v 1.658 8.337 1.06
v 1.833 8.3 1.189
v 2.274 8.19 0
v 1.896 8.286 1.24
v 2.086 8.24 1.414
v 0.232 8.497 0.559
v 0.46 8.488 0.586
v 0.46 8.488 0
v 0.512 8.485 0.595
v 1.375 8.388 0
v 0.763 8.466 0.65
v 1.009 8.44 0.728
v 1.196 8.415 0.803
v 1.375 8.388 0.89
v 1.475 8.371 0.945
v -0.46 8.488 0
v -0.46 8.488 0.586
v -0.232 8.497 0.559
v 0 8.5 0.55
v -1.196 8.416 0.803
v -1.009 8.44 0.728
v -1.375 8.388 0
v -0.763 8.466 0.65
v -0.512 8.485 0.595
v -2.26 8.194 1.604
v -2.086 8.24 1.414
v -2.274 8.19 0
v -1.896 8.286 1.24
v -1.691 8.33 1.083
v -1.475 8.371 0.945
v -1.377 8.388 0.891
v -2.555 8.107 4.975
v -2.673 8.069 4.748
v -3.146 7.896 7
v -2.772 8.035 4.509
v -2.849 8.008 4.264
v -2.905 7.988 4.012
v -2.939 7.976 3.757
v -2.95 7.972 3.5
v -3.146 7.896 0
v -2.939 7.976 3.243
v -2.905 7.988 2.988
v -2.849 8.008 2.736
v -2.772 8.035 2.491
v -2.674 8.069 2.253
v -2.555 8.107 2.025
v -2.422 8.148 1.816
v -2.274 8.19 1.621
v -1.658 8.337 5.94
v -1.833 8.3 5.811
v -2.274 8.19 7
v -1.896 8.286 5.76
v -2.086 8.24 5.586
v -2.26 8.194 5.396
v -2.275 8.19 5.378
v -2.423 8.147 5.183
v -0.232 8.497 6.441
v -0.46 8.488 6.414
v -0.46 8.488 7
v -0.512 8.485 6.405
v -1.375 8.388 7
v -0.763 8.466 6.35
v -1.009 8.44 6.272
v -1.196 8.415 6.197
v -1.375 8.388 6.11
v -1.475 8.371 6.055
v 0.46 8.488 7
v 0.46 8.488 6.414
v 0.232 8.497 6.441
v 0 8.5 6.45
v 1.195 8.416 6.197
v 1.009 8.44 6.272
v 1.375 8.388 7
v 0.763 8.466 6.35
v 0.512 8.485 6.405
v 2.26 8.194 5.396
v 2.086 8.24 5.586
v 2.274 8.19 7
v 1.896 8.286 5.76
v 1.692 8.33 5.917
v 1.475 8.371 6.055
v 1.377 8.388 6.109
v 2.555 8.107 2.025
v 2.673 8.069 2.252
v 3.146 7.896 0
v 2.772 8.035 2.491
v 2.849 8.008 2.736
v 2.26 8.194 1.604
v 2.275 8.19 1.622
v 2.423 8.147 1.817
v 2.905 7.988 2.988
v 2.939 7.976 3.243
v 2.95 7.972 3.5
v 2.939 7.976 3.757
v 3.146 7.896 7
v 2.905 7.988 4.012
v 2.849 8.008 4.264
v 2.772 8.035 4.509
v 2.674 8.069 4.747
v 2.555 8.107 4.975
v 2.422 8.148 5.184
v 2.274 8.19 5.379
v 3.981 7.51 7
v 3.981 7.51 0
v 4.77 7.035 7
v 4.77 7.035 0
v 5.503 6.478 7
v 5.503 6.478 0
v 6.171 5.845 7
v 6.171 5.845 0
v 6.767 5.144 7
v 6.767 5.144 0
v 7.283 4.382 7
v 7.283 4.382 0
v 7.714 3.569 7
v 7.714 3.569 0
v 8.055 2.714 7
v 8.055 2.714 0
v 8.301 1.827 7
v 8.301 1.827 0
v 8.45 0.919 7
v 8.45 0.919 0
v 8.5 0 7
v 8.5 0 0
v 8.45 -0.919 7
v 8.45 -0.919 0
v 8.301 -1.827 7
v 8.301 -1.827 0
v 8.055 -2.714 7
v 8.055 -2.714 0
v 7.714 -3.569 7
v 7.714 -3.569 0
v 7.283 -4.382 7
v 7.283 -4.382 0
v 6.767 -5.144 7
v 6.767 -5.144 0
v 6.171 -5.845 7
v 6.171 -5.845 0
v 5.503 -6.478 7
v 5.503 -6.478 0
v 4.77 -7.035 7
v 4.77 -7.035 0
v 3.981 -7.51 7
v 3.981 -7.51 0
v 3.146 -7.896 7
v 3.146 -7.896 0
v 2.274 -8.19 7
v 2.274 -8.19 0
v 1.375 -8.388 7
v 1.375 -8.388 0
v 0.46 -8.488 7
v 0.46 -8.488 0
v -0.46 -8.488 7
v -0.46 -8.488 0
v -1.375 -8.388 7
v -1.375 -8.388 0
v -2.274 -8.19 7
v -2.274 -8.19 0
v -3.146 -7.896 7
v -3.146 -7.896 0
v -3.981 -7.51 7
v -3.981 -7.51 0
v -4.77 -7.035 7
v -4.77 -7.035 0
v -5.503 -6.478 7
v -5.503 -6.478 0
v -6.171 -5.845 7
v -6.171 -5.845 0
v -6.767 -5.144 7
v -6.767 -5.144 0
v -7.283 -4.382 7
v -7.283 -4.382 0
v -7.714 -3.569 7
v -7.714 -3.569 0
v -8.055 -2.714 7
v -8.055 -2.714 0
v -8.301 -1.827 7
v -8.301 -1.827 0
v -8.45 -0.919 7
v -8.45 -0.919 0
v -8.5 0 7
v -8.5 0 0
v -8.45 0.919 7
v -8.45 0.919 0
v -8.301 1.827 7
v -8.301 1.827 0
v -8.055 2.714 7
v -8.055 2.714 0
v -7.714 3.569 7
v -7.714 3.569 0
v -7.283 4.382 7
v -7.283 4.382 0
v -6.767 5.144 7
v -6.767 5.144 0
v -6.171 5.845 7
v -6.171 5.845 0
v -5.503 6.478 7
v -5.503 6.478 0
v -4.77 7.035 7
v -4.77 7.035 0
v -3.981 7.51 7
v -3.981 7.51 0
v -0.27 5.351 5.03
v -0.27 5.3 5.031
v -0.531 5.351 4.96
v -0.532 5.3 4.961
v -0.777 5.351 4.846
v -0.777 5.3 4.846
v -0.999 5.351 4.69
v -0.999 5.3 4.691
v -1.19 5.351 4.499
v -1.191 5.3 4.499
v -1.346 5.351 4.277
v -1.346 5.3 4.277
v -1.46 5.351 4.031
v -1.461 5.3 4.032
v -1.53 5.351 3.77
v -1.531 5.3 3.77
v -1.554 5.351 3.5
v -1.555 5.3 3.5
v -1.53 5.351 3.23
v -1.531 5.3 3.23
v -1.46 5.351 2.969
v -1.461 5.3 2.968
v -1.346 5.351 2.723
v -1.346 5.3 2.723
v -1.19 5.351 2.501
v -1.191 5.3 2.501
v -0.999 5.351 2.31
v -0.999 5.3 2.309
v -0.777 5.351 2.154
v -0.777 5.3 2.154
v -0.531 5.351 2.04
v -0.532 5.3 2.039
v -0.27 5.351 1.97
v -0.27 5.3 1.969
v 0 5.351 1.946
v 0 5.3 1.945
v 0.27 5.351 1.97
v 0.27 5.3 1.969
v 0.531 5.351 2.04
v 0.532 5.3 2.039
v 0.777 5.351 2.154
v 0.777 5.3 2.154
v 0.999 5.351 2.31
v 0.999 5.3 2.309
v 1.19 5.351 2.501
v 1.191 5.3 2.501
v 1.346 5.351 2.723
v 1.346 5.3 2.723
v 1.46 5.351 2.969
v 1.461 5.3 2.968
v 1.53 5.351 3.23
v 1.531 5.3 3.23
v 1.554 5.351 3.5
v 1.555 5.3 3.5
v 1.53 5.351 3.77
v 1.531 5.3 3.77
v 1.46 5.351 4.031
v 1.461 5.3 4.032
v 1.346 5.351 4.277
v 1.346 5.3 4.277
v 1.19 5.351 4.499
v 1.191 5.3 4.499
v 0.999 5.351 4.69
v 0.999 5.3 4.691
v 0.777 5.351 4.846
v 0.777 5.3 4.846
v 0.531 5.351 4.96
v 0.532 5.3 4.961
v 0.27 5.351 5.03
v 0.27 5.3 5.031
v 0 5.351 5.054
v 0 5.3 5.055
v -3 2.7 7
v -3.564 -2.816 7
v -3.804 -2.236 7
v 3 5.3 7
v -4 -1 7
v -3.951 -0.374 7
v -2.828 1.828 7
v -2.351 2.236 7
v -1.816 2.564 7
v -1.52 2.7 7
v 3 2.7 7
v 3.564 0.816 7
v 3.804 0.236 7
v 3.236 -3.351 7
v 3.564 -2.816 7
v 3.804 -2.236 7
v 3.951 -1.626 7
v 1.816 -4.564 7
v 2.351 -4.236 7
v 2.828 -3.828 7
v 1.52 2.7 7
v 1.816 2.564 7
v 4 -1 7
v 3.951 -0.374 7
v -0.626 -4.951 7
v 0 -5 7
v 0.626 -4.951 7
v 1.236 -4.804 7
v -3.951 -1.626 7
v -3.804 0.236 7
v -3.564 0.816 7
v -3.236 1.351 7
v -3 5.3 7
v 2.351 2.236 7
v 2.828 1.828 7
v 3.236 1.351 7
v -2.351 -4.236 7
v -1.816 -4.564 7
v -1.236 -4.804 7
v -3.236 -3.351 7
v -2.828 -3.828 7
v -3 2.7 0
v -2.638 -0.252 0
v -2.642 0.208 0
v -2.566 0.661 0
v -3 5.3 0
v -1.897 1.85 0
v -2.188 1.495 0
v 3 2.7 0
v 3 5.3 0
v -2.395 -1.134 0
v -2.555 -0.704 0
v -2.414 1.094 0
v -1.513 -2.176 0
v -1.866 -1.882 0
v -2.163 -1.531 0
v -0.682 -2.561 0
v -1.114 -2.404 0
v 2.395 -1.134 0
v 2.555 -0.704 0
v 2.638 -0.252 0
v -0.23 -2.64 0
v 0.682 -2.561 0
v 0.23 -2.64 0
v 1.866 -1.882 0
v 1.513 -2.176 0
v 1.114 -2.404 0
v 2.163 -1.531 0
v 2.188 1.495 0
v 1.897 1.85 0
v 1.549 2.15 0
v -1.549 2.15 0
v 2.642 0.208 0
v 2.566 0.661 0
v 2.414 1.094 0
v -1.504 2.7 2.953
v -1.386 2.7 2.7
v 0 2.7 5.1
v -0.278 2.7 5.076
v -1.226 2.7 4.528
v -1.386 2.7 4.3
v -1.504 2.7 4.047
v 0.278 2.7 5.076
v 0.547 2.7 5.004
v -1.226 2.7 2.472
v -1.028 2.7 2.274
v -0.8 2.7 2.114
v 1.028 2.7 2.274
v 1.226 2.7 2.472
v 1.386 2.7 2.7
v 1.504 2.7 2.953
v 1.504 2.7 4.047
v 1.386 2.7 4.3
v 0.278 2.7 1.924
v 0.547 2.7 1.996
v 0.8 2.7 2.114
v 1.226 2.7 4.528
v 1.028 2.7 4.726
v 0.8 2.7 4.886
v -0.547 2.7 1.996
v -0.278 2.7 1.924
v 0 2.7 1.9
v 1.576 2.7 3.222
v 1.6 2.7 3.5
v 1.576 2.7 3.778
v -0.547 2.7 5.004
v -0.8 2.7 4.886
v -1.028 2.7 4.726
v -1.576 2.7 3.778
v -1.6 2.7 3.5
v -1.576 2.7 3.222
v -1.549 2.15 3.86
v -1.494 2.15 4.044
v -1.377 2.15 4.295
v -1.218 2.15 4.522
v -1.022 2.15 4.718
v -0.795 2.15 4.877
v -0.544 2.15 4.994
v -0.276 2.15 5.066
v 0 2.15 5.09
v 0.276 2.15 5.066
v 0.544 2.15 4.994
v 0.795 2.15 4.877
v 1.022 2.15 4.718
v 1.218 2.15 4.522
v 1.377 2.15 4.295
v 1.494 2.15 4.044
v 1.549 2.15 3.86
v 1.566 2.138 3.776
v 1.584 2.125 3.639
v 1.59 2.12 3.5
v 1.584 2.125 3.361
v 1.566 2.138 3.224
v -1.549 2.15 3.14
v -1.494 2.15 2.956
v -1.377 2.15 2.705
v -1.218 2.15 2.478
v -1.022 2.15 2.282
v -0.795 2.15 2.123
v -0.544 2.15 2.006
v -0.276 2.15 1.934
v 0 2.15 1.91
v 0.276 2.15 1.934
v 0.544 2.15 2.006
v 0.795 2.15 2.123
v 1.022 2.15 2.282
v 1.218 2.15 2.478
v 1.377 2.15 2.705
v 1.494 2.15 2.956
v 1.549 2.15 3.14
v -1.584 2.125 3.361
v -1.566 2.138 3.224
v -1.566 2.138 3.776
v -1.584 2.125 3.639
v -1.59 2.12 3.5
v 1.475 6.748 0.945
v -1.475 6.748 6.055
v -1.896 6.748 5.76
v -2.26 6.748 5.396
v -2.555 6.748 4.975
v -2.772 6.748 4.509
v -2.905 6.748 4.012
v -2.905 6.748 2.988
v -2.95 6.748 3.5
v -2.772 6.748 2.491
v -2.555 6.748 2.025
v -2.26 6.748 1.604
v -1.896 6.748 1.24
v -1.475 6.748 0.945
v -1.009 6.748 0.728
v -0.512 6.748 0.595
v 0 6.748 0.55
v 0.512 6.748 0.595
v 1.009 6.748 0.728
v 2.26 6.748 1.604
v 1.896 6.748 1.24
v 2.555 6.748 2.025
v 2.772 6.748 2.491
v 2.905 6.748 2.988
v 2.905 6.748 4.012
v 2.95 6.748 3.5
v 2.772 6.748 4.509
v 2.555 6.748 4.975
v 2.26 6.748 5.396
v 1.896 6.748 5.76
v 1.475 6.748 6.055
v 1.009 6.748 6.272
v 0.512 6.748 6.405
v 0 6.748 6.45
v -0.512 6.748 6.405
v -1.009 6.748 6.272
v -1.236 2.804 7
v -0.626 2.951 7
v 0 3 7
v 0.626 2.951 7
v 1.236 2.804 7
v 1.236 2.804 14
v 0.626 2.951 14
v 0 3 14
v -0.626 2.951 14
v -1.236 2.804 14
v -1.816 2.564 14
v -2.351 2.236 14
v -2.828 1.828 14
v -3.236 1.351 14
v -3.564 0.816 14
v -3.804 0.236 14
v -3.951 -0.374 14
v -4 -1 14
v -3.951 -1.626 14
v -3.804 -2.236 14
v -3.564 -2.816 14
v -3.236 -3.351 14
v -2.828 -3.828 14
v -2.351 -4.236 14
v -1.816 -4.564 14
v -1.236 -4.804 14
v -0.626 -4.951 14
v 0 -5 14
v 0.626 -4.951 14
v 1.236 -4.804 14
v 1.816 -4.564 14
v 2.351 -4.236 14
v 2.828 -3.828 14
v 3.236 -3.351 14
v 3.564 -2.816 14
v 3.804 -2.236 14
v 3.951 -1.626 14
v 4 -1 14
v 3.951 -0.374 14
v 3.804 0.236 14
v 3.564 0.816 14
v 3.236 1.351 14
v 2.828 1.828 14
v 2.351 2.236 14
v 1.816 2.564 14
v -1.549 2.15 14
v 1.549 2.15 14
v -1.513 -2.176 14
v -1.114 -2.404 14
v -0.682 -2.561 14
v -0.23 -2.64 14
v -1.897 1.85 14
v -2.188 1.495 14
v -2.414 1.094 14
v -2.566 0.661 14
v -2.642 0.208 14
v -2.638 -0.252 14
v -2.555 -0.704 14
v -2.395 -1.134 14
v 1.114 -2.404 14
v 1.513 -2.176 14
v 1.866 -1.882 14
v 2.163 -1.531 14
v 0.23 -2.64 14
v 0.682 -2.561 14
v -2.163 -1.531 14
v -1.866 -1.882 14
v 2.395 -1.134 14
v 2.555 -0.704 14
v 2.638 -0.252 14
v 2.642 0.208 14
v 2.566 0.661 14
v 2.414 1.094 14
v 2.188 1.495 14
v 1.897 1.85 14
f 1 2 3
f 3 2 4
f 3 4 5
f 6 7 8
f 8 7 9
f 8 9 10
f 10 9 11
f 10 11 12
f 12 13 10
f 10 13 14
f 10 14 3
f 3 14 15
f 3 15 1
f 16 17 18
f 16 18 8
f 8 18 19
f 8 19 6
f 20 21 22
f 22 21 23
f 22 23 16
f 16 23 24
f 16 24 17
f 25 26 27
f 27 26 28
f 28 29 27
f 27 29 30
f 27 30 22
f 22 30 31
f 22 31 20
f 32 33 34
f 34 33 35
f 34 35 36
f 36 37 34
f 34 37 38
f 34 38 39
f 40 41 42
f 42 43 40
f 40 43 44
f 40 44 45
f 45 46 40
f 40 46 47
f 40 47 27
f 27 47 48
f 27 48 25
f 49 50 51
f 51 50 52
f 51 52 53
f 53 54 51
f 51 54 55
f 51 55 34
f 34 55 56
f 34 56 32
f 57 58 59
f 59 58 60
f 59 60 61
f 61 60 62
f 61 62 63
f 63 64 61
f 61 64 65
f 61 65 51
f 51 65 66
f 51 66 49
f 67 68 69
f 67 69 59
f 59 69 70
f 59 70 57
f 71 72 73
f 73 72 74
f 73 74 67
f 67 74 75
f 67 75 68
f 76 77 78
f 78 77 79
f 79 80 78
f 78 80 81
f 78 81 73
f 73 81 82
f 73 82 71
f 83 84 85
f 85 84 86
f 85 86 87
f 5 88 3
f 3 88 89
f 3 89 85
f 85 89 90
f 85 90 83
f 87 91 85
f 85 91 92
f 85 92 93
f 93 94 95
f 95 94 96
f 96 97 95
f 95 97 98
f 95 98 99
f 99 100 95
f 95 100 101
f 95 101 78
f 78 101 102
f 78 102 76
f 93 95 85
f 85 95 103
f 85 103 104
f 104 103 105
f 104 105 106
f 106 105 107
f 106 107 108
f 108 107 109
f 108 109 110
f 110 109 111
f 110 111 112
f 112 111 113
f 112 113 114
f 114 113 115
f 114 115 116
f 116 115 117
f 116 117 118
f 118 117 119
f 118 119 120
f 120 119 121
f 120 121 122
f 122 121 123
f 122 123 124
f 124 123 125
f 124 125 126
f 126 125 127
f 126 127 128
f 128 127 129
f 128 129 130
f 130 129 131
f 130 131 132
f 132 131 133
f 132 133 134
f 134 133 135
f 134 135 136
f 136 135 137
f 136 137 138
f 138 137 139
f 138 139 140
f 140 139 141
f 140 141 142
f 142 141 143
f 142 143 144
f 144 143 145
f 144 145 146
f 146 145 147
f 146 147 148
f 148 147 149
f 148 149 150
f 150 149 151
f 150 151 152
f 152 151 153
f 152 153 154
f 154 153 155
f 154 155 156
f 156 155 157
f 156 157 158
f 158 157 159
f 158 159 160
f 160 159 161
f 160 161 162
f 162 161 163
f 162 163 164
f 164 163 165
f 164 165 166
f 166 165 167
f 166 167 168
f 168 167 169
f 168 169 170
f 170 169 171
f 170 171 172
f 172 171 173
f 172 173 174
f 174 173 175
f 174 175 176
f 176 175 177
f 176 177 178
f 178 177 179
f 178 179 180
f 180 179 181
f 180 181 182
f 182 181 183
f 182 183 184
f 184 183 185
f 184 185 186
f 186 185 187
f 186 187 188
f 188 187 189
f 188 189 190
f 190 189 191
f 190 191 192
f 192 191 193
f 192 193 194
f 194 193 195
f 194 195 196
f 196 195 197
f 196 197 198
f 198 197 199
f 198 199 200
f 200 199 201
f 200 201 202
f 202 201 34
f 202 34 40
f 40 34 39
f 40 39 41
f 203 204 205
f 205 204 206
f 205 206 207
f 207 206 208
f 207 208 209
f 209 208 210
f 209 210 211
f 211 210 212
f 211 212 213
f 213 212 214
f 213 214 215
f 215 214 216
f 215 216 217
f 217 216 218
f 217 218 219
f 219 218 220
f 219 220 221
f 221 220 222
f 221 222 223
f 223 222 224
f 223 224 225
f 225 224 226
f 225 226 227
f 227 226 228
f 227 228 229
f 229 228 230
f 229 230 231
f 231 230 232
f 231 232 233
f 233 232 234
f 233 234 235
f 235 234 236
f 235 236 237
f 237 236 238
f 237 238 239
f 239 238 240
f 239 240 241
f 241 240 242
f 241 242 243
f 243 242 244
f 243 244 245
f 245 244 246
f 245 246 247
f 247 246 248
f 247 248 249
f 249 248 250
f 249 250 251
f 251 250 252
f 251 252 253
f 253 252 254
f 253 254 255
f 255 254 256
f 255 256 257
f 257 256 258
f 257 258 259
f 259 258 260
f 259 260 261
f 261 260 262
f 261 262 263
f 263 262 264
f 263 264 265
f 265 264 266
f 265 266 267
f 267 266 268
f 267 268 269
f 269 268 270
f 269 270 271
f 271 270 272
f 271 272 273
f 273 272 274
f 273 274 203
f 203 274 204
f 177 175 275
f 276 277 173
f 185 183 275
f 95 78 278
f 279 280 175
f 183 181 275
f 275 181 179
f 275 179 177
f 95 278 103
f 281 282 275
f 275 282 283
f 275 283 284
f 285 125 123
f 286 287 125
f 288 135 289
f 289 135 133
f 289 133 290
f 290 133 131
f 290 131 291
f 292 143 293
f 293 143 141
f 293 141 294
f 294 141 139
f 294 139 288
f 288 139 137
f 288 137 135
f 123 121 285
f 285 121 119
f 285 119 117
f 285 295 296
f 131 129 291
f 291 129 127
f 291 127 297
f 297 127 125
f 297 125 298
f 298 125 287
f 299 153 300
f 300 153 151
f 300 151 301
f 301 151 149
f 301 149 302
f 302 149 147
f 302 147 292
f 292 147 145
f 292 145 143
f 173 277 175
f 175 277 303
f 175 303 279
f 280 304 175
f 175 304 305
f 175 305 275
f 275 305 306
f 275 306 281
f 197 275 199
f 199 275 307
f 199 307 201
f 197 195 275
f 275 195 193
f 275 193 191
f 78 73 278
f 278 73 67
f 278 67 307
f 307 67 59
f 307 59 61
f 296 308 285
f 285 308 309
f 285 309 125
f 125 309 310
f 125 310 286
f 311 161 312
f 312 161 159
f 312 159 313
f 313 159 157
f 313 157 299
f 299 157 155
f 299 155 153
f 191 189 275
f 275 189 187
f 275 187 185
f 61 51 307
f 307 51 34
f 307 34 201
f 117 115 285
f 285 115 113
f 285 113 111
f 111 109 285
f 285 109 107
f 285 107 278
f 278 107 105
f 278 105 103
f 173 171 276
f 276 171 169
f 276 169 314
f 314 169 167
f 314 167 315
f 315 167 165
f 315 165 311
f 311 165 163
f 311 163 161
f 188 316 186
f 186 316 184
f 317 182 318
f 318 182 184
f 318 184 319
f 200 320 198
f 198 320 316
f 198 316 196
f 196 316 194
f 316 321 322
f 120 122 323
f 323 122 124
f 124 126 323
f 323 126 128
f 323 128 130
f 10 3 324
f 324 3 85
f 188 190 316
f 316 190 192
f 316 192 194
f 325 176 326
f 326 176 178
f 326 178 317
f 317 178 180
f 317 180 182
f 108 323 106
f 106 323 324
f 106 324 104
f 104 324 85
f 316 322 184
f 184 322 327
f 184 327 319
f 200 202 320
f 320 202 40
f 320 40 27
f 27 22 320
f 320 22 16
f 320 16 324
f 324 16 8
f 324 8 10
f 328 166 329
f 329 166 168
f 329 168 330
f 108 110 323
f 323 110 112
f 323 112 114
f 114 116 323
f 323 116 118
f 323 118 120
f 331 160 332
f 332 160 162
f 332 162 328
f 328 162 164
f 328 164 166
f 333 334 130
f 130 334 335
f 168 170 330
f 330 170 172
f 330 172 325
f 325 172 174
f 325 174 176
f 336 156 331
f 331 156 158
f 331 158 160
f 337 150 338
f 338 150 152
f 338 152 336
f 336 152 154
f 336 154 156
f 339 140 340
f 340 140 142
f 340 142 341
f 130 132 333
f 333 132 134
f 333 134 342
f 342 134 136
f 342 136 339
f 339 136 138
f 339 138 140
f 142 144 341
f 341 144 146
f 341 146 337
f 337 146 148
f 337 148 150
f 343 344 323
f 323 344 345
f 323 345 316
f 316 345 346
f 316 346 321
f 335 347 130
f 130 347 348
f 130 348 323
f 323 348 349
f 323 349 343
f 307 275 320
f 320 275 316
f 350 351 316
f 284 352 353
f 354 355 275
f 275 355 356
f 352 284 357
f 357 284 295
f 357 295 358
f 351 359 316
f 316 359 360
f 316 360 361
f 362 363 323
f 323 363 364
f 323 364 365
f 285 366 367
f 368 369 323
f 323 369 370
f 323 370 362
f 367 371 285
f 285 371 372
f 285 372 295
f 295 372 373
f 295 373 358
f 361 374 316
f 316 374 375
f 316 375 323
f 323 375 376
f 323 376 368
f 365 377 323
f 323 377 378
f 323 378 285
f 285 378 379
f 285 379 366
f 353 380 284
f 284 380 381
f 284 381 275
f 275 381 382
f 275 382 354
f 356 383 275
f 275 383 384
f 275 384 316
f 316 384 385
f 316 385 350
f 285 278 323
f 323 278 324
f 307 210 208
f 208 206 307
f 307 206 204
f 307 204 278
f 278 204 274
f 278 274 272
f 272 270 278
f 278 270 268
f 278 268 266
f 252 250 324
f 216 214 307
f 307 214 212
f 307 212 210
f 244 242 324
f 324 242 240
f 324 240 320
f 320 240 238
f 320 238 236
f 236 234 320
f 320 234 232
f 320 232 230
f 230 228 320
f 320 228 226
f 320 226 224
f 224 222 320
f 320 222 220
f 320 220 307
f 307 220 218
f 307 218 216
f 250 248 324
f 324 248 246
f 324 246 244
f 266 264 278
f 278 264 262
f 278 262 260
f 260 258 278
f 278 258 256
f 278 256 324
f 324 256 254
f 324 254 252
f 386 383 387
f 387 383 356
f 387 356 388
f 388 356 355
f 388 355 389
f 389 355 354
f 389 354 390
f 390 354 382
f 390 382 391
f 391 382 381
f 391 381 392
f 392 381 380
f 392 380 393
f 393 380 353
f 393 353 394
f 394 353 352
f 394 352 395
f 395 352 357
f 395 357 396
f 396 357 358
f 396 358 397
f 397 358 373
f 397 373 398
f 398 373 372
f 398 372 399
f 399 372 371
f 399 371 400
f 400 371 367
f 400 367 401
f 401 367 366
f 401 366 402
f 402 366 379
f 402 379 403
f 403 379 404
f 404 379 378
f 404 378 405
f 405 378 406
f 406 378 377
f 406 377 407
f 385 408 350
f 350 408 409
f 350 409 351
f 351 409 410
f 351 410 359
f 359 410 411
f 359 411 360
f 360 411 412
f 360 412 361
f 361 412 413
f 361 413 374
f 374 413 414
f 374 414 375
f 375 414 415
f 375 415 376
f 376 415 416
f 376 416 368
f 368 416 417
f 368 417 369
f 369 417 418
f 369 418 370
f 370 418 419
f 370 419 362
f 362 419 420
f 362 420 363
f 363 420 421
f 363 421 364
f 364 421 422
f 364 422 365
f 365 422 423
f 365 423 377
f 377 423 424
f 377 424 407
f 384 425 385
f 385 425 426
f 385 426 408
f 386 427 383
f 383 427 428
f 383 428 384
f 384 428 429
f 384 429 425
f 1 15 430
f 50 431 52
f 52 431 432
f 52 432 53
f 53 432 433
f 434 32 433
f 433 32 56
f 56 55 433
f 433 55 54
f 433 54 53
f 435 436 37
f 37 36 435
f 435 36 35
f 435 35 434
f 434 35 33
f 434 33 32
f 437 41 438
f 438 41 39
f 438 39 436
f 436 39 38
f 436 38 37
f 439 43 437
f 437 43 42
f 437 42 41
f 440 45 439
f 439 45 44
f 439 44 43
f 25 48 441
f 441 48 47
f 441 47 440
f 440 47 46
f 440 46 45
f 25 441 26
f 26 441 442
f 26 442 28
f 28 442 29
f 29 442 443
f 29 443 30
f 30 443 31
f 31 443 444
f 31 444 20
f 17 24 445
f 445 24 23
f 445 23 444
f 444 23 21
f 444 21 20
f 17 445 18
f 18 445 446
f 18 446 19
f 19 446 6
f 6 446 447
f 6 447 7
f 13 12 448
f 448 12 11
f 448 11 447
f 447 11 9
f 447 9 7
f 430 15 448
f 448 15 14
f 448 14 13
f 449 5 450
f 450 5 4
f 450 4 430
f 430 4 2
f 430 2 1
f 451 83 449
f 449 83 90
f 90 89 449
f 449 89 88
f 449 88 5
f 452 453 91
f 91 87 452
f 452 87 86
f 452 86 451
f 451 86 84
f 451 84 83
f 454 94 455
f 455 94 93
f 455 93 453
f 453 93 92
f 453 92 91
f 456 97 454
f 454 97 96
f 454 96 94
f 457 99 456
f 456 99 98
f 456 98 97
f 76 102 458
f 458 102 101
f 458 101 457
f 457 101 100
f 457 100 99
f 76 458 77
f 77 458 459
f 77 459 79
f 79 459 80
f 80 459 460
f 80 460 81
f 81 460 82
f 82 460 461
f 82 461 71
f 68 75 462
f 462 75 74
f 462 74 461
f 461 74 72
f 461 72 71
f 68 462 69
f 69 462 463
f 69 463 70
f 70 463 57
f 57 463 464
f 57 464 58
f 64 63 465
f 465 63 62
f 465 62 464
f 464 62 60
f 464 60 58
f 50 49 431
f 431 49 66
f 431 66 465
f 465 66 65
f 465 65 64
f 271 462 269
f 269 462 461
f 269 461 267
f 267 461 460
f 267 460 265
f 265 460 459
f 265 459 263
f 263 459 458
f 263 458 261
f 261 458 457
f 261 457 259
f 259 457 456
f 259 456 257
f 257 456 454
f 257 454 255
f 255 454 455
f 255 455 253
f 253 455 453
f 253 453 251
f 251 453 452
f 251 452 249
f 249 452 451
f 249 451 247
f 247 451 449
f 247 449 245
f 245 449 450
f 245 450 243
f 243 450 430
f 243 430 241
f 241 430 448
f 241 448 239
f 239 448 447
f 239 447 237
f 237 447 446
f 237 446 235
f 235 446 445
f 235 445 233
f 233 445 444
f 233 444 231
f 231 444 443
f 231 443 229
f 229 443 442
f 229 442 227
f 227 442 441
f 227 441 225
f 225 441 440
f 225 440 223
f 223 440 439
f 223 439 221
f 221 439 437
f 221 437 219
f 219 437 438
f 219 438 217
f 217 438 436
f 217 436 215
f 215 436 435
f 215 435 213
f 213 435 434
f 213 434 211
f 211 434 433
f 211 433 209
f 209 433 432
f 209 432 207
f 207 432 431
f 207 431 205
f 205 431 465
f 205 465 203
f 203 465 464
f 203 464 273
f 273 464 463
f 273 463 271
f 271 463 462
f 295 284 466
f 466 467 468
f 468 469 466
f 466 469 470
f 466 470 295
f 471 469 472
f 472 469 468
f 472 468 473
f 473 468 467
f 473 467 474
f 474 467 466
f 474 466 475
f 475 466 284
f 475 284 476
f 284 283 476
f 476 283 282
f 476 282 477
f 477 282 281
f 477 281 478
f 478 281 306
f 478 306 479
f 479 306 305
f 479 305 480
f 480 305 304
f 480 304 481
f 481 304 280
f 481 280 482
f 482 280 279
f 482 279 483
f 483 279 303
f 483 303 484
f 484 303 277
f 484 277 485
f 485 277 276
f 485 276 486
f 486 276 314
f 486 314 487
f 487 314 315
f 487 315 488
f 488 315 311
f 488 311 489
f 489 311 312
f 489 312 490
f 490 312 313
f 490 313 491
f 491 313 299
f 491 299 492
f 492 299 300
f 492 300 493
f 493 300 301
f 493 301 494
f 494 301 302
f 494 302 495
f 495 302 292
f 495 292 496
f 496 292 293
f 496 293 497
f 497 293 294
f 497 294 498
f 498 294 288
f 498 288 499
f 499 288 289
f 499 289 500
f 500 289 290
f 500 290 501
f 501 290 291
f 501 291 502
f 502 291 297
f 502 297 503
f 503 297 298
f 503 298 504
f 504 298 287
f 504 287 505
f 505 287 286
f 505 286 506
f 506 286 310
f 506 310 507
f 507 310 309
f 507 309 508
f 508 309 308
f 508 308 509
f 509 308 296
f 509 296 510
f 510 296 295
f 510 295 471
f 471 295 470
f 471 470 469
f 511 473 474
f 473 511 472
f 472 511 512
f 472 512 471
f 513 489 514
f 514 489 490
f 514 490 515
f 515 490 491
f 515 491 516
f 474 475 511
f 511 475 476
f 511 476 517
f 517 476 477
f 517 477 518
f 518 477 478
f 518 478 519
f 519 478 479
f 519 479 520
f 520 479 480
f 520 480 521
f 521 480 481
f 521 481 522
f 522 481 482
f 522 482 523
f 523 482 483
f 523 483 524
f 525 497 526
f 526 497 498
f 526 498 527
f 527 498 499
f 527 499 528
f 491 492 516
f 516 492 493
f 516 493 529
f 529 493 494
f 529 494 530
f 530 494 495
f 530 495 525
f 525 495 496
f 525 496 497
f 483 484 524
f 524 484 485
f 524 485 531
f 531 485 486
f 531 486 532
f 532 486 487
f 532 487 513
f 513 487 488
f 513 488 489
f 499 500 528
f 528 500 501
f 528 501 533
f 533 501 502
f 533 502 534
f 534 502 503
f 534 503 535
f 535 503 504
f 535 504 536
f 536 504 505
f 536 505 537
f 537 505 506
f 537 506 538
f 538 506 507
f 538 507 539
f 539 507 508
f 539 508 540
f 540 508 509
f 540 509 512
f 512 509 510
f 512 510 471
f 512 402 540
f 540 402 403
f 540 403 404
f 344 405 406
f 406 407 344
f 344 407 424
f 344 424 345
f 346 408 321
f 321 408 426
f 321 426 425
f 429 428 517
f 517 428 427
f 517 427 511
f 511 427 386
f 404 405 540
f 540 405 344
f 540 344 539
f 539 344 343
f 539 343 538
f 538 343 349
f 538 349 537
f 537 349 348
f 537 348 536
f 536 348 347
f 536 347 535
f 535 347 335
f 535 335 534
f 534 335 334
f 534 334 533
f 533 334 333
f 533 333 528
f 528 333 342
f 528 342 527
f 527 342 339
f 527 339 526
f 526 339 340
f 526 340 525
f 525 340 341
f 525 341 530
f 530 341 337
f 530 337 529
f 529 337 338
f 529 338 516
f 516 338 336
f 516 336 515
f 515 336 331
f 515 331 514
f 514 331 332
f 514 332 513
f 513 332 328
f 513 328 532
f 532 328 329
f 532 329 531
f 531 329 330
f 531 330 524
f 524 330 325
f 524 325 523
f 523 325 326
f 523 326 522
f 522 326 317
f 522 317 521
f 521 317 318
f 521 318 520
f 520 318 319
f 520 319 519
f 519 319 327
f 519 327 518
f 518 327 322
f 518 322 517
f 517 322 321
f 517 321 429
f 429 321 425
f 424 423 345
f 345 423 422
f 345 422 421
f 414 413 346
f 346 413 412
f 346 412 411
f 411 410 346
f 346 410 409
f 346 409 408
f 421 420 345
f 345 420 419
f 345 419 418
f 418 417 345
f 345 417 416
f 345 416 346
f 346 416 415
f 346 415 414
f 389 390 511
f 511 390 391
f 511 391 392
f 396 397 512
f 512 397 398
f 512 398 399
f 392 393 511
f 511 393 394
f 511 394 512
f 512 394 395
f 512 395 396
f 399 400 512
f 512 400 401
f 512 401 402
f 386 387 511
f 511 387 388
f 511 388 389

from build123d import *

# Parameters (mm, degrees)
ESQUISSE1_R             = 8.5
BOSS_EXTRU_1_DEPTH      = 7
ESQUISSE2_W             = 6
ESQUISSE2_H             = 2.6
ENL_V_MAT_EXTRU_1_DEPTH = 14.910427743
ESQUISSE7_R             = 2.95
ENL_V_MAT_EXTRU_8_DEPTH = 21.087060672
ESQUISSE9_R             = 4
BOSS_EXTRU_2_DEPTH      = 7
ENL_V_MAT_EXTRU_9_DEPTH = 19.45264218


with BuildPart() as part:
    # Esquisse1 → Boss.-Extru.1 (new body)
    with BuildSketch(Plane.XY):
        Circle(ESQUISSE1_R)
    extrude(amount=BOSS_EXTRU_1_DEPTH)

    # Esquisse2 → Enlèv. mat.-Extru.1 (cut, through all)
    with BuildSketch(Plane(origin=(0, 0, 0), x_dir=(-1, 0, 0), z_dir=(0, 0, -1))):
        with Locations((0, 4)):
            Rectangle(ESQUISSE2_W, ESQUISSE2_H)
    extrude(amount=-ENL_V_MAT_EXTRU_1_DEPTH, mode=Mode.SUBTRACT)

    # Enlèv. mat.-Extru.2: read off the stored shape, not the designer's step
    # Enlèv. mat.-Extru.2 outline → Enlèv. mat.-Extru.2 (revolve, cut)
    with BuildSketch(Plane.XY.offset(3.5)):
        Polygon((0, 5.3), (1.554616831, 5.3), (1.498760014, 8.500034923), (0, 8.500034923), align=None)
        Polygon((1.6, 2.7), (0, 2.7), (0, 0.7), (1.56508987, 0.7), align=None)
    revolve(axis=Axis((0, 0, 3.5), (0, 1, 0)), mode=Mode.SUBTRACT)

    # Esquisse7 → Enlèv. mat.-Extru.8 (cut, through all)
    with BuildSketch(Plane(origin=(0, 8.3, 0), x_dir=(1, 0, 0), z_dir=(0, 1, 0))):
        with Locations((0, -3.5)):
            Circle(ESQUISSE7_R)
    extrude(amount=ENL_V_MAT_EXTRU_8_DEPTH, mode=Mode.SUBTRACT)

    # Chanfrein1: read off the stored shape, not the designer's step
    # Chanfrein1 outline → Chanfrein1 (revolve, cut)
    with BuildSketch(Plane.XY.offset(3.5)):
        Polygon((2.95, 6.747748364), (2.95, 8.3), (1.502251636, 8.3), (1.553718474, 5.351466838), align=None)
    revolve(axis=Axis((0, 0, 3.5), (0, 1, 0)), mode=Mode.SUBTRACT)

    # Esquisse9 → Boss.-Extru.2 (add)
    with BuildSketch(Plane.XY.offset(7)):
        with Locations(Location((0, -1, 0), (0, 0, 112.331645009))):
            Circle(ESQUISSE9_R)
    extrude(amount=BOSS_EXTRU_2_DEPTH)

    # Esquisse10 → Enlèv. mat.-Extru.9 (cut, through all)
    with BuildSketch(Plane(origin=(0, 0, 0), x_dir=(-1, 0, 0), z_dir=(0, 0, -1))):
        with BuildLine():
            Line((-1.549193338, 2.15), (1.549193338, 2.15))
            ThreePointArc((1.549193338, 2.15), (0, -2.65), (-1.549193338, 2.15))
        make_face()
    extrude(amount=-ENL_V_MAT_EXTRU_9_DEPTH, mode=Mode.SUBTRACT)


solid = part.part
